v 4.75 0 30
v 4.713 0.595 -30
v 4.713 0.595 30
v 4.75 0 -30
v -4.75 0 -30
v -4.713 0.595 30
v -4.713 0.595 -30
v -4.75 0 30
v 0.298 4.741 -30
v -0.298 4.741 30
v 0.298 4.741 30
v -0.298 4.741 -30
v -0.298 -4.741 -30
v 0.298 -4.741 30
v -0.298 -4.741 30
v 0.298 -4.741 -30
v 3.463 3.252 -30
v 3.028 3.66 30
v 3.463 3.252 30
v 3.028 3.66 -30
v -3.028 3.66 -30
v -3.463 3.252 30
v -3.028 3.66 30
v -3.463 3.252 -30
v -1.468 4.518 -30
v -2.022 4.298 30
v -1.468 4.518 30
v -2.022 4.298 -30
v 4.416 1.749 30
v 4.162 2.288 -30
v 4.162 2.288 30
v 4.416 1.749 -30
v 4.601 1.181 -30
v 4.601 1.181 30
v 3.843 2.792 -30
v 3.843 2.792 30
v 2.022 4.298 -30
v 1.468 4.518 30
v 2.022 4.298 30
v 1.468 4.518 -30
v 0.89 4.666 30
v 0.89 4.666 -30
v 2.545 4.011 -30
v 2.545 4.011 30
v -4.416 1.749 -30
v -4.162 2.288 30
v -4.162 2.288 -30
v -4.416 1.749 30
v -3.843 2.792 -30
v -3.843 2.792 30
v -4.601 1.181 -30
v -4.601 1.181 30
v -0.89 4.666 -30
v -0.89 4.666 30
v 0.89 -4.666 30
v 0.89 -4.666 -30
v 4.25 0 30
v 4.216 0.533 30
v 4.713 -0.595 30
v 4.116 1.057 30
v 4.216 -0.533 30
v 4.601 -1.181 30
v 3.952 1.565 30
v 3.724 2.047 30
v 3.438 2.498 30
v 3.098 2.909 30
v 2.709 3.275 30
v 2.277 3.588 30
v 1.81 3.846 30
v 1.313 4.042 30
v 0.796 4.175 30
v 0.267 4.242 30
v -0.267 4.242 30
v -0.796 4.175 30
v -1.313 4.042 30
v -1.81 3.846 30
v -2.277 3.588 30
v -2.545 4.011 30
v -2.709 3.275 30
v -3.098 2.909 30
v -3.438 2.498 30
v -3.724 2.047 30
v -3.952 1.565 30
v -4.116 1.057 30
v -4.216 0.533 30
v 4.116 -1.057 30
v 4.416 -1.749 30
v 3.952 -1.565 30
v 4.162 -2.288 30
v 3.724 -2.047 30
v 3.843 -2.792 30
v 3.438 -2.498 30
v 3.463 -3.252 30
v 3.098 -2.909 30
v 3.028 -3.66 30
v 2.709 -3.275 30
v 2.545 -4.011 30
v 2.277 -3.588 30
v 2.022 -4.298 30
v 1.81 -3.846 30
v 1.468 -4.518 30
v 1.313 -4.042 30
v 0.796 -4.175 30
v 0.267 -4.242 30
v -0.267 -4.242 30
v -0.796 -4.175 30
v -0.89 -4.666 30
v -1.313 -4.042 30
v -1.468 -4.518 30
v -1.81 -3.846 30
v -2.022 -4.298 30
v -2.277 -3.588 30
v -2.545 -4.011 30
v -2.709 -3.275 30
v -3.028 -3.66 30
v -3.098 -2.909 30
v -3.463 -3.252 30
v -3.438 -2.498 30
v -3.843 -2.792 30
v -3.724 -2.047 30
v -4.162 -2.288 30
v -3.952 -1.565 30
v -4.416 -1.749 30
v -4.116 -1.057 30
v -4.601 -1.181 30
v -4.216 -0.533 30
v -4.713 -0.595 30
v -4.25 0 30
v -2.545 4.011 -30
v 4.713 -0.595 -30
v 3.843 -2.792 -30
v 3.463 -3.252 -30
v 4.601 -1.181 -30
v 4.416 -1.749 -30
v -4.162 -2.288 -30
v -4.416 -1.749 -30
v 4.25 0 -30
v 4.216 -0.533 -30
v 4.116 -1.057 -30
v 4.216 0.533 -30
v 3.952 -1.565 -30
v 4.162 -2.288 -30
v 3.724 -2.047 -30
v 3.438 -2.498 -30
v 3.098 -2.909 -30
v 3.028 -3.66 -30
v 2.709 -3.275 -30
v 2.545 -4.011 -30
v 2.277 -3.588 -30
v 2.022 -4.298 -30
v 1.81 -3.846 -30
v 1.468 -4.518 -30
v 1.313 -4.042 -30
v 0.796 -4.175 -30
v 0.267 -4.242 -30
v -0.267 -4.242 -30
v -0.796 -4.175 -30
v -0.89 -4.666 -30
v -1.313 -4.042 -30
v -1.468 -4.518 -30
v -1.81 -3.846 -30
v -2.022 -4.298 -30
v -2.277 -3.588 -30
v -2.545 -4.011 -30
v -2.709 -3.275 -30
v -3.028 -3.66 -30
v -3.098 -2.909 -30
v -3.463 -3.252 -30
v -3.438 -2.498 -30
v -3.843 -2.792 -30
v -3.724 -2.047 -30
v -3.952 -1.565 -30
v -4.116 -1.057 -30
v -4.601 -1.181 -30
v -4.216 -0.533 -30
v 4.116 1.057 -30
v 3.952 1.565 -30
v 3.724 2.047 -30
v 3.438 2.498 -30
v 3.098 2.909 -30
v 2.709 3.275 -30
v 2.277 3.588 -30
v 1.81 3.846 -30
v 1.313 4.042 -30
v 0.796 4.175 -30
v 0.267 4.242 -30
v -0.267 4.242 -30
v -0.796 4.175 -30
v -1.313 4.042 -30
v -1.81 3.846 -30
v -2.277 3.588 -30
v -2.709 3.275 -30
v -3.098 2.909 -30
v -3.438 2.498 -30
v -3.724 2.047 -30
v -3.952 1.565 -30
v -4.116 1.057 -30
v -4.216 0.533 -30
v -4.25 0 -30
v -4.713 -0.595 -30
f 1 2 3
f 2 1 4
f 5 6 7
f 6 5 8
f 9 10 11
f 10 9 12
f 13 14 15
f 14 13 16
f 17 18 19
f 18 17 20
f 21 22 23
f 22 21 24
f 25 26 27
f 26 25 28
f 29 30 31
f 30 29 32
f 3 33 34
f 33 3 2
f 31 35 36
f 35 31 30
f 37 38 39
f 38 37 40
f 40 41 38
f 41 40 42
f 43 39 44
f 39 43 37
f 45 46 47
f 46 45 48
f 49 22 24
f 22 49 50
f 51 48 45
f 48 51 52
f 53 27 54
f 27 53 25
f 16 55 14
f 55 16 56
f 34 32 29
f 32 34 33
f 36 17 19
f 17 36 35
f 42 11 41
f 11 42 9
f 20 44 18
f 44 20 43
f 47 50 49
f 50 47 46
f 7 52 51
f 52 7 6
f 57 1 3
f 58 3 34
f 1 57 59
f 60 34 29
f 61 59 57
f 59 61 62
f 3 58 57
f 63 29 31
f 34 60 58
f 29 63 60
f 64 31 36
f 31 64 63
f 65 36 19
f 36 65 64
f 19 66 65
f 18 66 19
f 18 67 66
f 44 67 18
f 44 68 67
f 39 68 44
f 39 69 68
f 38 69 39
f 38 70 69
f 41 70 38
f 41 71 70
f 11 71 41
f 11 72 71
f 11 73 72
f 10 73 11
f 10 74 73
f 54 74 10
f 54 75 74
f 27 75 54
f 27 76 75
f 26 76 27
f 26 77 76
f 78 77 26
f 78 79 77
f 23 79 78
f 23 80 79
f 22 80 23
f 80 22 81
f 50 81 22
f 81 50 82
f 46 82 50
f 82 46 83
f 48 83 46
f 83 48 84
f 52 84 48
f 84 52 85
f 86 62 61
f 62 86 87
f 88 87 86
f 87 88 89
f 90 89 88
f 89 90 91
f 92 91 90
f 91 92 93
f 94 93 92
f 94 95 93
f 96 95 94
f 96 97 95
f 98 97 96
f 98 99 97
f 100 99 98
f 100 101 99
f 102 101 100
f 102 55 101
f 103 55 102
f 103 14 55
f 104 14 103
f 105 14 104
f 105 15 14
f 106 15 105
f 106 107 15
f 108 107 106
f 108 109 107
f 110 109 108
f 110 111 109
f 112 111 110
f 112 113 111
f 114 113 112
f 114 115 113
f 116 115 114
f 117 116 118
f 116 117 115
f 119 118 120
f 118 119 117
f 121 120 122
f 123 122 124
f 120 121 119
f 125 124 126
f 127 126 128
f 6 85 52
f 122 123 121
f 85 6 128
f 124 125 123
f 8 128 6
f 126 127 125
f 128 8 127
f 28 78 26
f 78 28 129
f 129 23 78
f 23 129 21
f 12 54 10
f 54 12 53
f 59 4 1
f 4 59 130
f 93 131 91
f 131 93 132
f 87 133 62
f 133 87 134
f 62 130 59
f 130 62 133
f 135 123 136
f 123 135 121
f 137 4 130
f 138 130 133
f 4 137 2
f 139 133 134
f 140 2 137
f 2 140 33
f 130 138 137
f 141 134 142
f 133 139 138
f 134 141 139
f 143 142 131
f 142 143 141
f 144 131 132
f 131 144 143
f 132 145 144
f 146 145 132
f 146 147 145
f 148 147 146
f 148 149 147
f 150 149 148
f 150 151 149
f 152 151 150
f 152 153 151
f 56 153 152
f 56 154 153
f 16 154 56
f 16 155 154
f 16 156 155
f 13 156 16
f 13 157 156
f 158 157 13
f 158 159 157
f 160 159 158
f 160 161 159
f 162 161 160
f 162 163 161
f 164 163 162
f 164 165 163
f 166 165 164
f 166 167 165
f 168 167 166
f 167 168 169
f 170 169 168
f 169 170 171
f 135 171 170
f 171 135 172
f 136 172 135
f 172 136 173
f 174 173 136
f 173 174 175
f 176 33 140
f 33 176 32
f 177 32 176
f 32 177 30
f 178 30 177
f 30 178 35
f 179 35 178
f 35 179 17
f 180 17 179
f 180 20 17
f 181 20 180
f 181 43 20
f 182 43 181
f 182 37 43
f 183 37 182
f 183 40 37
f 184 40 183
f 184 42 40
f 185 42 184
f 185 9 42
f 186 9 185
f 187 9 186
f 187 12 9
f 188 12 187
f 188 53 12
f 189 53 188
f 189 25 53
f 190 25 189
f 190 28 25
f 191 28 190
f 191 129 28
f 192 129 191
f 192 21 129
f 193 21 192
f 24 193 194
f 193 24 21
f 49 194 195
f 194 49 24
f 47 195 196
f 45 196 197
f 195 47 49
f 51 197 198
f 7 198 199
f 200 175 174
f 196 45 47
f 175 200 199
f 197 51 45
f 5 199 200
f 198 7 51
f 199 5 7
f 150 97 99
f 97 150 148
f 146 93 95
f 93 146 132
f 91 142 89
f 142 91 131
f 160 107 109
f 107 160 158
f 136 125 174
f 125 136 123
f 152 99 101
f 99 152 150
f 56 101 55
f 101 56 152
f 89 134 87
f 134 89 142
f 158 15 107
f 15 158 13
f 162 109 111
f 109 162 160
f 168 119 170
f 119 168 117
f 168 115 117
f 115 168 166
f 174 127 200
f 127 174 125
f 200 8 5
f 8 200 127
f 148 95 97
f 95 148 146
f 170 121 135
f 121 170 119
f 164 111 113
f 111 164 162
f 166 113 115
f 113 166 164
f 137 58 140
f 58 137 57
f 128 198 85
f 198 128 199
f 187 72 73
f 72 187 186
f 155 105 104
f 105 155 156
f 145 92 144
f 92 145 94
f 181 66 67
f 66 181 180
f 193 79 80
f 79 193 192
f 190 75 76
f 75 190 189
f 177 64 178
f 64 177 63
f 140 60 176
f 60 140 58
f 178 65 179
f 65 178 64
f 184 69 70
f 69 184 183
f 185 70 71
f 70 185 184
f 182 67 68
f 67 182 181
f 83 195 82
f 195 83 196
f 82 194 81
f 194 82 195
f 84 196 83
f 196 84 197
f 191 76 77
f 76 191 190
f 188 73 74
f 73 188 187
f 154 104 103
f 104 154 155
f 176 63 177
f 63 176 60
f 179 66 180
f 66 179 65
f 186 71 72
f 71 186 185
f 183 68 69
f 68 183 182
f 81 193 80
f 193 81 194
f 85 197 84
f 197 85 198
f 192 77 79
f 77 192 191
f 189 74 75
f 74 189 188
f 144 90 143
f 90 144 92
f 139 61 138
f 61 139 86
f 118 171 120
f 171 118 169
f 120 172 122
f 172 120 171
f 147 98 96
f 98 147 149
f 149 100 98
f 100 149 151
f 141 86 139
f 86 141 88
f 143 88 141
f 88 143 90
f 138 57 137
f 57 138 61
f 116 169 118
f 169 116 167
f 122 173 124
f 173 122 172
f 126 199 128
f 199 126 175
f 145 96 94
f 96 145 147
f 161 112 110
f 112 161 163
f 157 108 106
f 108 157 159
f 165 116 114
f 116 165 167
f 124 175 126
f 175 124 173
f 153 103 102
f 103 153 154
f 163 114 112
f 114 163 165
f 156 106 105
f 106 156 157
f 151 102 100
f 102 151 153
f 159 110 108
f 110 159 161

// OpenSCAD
$fn = 50;


difference() {
	union() {
		translate(v = [0, 0, -30.0000000000]) {
			cylinder(h = 60, r = 4.7500000000);
		}
	}
	union() {
		translate(v = [0, 0, -100.0000000000]) {
			cylinder(h = 200, r = 4.2500000000);
		}
	}
}
